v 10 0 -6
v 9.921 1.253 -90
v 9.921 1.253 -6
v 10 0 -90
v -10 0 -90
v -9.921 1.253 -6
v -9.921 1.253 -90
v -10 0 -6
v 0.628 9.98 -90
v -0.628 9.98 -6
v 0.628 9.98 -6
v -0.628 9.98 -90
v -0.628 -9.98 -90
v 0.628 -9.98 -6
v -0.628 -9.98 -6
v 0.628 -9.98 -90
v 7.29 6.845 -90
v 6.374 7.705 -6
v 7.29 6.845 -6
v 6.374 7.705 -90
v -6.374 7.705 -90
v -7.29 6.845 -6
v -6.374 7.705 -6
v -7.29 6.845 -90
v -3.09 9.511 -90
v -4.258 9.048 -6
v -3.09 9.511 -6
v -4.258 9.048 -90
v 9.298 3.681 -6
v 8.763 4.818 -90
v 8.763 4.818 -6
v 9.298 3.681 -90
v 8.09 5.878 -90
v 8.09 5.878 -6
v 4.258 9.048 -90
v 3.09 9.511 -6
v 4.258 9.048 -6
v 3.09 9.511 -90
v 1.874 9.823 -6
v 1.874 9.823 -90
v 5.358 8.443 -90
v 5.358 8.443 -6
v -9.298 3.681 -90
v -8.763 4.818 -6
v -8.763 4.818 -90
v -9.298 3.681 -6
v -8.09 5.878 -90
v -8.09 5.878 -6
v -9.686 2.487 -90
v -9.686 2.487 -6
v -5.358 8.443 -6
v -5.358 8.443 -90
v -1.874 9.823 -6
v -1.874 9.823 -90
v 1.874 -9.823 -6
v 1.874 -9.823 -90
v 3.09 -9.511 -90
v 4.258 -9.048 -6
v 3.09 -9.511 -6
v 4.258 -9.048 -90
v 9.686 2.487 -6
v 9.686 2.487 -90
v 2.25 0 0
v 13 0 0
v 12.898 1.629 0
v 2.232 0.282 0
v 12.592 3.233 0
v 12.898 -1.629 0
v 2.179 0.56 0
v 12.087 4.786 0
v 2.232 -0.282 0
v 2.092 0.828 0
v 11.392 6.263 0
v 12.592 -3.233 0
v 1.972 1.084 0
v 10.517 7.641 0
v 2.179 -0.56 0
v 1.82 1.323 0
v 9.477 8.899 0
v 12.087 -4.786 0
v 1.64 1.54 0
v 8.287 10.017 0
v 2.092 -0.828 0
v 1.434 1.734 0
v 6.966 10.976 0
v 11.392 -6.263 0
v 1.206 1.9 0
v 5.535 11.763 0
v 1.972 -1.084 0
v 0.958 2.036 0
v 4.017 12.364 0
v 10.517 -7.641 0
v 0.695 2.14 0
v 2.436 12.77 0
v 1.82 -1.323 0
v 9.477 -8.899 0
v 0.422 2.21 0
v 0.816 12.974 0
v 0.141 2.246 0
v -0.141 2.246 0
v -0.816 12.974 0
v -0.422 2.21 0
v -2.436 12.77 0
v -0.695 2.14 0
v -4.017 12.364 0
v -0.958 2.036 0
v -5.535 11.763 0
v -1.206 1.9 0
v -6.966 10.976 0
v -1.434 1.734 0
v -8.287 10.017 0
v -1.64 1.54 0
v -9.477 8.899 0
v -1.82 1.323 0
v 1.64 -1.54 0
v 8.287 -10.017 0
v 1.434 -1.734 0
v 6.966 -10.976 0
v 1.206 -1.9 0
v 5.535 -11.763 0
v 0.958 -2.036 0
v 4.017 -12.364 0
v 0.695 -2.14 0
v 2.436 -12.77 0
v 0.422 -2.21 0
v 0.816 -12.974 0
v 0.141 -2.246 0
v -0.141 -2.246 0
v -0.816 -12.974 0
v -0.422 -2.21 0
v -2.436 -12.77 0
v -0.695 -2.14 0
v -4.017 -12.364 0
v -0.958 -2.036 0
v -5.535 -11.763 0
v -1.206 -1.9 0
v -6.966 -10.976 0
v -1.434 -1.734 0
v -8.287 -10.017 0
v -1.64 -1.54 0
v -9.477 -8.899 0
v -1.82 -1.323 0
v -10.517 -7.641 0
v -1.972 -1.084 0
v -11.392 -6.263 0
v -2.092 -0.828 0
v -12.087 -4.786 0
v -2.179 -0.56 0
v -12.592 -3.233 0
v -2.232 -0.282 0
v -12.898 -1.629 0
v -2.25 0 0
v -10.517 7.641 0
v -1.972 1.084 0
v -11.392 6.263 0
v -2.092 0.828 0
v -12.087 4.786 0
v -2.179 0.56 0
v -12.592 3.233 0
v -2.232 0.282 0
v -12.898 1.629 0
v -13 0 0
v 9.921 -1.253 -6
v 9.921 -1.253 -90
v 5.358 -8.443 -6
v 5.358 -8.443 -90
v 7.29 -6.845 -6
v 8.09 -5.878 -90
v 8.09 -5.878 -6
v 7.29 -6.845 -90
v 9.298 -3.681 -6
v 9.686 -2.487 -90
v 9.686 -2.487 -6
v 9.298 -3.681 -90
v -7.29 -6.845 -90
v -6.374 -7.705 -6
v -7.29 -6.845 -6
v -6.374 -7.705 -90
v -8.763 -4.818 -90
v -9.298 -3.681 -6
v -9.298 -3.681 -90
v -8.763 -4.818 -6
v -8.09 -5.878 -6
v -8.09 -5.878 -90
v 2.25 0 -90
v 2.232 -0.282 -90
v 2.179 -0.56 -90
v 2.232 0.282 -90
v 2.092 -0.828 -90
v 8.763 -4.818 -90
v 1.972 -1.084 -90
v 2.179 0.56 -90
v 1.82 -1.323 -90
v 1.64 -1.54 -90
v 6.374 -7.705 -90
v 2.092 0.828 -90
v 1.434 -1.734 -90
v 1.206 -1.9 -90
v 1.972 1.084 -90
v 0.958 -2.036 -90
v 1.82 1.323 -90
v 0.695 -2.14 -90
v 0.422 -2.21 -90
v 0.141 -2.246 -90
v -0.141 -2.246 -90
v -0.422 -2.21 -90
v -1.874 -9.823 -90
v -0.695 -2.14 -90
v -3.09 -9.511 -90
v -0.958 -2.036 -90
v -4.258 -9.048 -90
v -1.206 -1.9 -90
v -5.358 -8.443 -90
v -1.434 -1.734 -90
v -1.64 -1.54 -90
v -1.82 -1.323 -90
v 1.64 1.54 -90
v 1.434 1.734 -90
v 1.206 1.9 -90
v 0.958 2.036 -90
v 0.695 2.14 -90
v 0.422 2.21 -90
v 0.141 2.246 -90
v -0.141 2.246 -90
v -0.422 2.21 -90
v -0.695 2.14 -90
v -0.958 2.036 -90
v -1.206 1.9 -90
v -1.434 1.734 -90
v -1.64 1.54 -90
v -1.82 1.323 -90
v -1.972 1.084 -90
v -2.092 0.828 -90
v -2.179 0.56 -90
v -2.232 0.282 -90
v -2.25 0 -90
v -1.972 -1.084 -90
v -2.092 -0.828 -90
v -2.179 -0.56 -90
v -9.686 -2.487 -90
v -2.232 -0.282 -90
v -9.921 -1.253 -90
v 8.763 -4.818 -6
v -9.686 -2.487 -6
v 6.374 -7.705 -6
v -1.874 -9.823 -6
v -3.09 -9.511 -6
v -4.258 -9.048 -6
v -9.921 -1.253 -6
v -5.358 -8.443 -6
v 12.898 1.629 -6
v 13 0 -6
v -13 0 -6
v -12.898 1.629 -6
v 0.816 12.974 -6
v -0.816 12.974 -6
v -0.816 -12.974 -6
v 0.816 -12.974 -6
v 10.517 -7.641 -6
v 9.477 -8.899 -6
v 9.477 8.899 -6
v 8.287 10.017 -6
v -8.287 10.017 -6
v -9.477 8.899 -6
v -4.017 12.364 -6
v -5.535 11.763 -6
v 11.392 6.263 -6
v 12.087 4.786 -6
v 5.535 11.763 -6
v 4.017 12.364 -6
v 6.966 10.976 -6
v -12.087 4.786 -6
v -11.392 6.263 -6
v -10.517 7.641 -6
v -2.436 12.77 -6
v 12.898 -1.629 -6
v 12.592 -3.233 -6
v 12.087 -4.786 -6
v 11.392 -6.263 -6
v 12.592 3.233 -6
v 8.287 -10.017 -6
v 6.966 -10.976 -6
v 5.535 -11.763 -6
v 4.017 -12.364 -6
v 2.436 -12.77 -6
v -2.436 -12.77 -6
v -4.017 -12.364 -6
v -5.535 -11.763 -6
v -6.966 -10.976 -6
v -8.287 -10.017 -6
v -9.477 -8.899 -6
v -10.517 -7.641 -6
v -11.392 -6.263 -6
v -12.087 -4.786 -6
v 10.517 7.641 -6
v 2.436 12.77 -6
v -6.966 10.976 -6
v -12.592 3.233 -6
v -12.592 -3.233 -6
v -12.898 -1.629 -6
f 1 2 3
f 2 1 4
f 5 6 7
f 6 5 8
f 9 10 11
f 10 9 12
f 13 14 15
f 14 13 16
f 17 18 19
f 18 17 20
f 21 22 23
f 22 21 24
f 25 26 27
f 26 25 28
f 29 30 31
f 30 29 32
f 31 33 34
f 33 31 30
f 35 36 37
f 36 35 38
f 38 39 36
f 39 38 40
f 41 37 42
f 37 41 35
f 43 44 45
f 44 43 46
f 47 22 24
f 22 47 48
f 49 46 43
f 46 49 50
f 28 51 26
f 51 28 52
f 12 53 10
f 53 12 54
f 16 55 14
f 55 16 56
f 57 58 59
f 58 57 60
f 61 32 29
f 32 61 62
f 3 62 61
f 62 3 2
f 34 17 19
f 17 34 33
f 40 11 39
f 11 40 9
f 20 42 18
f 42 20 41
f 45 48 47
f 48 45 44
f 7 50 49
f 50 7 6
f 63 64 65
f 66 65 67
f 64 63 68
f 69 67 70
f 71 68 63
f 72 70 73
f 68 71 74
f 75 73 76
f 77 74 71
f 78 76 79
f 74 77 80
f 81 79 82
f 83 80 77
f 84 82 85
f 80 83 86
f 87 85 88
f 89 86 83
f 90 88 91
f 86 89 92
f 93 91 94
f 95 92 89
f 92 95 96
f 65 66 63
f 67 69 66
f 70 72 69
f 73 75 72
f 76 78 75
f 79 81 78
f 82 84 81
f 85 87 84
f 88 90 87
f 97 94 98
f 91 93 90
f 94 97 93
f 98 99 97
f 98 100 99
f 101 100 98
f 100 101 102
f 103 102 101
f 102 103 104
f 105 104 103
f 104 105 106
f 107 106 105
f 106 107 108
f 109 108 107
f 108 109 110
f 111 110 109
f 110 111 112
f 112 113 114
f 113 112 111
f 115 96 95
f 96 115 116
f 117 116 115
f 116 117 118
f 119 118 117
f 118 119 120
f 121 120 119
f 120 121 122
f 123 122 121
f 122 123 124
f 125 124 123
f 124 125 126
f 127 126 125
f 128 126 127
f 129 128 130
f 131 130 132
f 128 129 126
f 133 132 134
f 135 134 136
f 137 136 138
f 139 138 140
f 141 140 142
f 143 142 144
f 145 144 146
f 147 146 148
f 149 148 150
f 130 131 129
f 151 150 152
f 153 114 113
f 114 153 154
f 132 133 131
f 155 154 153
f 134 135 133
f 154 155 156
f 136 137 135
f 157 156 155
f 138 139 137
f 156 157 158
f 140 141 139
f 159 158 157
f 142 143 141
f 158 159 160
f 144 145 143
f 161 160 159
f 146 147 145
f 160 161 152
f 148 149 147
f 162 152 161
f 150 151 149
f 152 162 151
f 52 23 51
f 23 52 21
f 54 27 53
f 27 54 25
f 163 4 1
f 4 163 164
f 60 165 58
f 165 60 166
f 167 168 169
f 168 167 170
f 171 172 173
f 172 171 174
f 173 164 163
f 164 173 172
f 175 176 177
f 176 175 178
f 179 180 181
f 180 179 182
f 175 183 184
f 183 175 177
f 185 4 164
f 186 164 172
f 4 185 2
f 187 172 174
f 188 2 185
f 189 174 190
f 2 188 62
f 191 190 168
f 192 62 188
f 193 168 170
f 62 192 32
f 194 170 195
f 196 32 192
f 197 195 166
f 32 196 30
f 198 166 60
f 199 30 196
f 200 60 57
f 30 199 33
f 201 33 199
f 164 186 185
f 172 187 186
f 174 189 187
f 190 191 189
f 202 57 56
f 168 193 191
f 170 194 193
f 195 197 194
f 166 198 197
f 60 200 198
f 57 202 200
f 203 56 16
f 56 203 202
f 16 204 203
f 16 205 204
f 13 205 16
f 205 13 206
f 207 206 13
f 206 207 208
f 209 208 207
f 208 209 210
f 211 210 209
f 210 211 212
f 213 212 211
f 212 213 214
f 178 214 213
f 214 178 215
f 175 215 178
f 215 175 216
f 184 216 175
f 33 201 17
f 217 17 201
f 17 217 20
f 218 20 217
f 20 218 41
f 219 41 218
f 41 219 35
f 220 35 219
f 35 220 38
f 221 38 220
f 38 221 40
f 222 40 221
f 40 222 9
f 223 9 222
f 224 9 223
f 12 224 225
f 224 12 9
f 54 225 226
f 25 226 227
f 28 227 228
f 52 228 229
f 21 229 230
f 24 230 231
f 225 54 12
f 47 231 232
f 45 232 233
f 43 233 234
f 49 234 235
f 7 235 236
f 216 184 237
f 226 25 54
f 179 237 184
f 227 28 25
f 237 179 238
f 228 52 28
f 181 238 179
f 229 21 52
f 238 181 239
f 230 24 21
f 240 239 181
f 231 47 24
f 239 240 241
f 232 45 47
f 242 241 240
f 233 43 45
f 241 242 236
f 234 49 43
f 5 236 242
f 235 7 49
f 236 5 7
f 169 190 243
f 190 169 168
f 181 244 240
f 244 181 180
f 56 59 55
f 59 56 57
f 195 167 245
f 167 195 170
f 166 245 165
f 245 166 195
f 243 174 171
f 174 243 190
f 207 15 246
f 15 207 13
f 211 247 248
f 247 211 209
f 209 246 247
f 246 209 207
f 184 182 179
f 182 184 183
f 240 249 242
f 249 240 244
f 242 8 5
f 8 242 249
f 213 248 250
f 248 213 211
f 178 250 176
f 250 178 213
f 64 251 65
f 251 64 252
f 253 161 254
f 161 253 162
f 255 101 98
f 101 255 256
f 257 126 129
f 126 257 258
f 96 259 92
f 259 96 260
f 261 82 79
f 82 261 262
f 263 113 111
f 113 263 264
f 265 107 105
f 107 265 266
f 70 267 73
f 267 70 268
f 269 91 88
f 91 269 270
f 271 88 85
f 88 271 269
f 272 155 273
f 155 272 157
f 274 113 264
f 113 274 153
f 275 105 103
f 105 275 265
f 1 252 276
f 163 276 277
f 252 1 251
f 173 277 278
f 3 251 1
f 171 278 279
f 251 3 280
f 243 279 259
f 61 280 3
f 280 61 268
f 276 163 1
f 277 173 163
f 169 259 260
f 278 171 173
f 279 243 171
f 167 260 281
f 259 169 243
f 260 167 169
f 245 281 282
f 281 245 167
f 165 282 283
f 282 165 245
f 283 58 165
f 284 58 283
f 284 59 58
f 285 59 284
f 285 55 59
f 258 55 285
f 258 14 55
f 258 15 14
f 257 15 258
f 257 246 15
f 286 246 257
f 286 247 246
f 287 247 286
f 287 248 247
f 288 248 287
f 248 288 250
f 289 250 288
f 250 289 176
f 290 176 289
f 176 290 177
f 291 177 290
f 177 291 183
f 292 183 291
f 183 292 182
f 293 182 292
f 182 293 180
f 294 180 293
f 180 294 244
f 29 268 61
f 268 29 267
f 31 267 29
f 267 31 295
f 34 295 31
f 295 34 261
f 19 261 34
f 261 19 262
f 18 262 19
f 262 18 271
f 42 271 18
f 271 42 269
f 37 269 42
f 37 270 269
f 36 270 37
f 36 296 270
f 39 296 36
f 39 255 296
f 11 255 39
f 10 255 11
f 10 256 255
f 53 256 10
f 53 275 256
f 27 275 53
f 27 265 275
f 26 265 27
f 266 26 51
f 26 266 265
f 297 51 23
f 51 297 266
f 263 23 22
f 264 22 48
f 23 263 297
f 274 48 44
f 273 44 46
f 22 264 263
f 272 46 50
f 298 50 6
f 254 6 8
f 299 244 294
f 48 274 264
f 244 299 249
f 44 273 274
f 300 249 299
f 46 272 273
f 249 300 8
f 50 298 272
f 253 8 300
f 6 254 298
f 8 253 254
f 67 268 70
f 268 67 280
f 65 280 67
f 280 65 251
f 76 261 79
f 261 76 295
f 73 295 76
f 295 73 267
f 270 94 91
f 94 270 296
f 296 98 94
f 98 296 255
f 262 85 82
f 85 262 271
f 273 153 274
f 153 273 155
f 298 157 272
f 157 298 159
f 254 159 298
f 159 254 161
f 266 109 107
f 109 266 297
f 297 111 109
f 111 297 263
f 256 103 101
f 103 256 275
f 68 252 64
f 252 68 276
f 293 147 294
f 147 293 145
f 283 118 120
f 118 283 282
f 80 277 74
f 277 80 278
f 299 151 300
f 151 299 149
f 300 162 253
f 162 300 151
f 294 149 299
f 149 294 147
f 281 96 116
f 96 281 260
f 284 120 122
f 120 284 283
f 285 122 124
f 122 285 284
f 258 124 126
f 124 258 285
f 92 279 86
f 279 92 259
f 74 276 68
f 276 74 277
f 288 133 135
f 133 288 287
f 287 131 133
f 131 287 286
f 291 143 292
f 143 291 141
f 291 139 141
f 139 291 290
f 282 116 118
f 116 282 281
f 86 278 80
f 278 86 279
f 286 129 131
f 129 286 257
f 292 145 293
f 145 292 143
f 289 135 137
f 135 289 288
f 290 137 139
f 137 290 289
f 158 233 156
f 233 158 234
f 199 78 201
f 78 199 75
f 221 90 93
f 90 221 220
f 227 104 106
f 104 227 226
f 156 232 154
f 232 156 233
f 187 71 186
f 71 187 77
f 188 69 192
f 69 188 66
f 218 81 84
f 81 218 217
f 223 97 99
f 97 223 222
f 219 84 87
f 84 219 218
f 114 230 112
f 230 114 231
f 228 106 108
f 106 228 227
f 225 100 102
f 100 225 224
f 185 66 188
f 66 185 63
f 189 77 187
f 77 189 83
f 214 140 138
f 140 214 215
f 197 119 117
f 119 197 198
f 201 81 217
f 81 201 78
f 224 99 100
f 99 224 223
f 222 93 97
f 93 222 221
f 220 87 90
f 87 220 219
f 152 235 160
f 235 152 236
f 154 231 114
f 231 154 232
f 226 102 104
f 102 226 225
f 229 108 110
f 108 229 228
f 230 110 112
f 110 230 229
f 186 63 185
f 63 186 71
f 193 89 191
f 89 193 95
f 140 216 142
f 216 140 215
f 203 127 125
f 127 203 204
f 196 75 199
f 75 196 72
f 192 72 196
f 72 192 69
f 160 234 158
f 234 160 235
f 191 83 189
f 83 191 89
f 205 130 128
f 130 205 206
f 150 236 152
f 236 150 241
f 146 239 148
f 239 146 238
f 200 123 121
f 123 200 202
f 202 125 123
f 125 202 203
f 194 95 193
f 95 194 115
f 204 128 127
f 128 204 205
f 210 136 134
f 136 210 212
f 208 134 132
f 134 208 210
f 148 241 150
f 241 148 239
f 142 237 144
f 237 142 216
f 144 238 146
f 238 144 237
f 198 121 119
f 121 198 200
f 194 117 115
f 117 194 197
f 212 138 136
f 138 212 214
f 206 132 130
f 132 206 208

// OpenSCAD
$fn = 50;


difference() {
	union() {
		translate(v = [0, 0, -90.0000000000]) {
			cylinder(h = 90, r = 10.0000000000);
		}
		translate(v = [0, 0, -6.0000000000]) {
			cylinder(h = 6, r = 13.0000000000);
		}
	}
	union() {
		#translate(v = [0, 0, -90]) {
			cylinder(h = 90, r = 2.2500000000);
		}
	}
}
